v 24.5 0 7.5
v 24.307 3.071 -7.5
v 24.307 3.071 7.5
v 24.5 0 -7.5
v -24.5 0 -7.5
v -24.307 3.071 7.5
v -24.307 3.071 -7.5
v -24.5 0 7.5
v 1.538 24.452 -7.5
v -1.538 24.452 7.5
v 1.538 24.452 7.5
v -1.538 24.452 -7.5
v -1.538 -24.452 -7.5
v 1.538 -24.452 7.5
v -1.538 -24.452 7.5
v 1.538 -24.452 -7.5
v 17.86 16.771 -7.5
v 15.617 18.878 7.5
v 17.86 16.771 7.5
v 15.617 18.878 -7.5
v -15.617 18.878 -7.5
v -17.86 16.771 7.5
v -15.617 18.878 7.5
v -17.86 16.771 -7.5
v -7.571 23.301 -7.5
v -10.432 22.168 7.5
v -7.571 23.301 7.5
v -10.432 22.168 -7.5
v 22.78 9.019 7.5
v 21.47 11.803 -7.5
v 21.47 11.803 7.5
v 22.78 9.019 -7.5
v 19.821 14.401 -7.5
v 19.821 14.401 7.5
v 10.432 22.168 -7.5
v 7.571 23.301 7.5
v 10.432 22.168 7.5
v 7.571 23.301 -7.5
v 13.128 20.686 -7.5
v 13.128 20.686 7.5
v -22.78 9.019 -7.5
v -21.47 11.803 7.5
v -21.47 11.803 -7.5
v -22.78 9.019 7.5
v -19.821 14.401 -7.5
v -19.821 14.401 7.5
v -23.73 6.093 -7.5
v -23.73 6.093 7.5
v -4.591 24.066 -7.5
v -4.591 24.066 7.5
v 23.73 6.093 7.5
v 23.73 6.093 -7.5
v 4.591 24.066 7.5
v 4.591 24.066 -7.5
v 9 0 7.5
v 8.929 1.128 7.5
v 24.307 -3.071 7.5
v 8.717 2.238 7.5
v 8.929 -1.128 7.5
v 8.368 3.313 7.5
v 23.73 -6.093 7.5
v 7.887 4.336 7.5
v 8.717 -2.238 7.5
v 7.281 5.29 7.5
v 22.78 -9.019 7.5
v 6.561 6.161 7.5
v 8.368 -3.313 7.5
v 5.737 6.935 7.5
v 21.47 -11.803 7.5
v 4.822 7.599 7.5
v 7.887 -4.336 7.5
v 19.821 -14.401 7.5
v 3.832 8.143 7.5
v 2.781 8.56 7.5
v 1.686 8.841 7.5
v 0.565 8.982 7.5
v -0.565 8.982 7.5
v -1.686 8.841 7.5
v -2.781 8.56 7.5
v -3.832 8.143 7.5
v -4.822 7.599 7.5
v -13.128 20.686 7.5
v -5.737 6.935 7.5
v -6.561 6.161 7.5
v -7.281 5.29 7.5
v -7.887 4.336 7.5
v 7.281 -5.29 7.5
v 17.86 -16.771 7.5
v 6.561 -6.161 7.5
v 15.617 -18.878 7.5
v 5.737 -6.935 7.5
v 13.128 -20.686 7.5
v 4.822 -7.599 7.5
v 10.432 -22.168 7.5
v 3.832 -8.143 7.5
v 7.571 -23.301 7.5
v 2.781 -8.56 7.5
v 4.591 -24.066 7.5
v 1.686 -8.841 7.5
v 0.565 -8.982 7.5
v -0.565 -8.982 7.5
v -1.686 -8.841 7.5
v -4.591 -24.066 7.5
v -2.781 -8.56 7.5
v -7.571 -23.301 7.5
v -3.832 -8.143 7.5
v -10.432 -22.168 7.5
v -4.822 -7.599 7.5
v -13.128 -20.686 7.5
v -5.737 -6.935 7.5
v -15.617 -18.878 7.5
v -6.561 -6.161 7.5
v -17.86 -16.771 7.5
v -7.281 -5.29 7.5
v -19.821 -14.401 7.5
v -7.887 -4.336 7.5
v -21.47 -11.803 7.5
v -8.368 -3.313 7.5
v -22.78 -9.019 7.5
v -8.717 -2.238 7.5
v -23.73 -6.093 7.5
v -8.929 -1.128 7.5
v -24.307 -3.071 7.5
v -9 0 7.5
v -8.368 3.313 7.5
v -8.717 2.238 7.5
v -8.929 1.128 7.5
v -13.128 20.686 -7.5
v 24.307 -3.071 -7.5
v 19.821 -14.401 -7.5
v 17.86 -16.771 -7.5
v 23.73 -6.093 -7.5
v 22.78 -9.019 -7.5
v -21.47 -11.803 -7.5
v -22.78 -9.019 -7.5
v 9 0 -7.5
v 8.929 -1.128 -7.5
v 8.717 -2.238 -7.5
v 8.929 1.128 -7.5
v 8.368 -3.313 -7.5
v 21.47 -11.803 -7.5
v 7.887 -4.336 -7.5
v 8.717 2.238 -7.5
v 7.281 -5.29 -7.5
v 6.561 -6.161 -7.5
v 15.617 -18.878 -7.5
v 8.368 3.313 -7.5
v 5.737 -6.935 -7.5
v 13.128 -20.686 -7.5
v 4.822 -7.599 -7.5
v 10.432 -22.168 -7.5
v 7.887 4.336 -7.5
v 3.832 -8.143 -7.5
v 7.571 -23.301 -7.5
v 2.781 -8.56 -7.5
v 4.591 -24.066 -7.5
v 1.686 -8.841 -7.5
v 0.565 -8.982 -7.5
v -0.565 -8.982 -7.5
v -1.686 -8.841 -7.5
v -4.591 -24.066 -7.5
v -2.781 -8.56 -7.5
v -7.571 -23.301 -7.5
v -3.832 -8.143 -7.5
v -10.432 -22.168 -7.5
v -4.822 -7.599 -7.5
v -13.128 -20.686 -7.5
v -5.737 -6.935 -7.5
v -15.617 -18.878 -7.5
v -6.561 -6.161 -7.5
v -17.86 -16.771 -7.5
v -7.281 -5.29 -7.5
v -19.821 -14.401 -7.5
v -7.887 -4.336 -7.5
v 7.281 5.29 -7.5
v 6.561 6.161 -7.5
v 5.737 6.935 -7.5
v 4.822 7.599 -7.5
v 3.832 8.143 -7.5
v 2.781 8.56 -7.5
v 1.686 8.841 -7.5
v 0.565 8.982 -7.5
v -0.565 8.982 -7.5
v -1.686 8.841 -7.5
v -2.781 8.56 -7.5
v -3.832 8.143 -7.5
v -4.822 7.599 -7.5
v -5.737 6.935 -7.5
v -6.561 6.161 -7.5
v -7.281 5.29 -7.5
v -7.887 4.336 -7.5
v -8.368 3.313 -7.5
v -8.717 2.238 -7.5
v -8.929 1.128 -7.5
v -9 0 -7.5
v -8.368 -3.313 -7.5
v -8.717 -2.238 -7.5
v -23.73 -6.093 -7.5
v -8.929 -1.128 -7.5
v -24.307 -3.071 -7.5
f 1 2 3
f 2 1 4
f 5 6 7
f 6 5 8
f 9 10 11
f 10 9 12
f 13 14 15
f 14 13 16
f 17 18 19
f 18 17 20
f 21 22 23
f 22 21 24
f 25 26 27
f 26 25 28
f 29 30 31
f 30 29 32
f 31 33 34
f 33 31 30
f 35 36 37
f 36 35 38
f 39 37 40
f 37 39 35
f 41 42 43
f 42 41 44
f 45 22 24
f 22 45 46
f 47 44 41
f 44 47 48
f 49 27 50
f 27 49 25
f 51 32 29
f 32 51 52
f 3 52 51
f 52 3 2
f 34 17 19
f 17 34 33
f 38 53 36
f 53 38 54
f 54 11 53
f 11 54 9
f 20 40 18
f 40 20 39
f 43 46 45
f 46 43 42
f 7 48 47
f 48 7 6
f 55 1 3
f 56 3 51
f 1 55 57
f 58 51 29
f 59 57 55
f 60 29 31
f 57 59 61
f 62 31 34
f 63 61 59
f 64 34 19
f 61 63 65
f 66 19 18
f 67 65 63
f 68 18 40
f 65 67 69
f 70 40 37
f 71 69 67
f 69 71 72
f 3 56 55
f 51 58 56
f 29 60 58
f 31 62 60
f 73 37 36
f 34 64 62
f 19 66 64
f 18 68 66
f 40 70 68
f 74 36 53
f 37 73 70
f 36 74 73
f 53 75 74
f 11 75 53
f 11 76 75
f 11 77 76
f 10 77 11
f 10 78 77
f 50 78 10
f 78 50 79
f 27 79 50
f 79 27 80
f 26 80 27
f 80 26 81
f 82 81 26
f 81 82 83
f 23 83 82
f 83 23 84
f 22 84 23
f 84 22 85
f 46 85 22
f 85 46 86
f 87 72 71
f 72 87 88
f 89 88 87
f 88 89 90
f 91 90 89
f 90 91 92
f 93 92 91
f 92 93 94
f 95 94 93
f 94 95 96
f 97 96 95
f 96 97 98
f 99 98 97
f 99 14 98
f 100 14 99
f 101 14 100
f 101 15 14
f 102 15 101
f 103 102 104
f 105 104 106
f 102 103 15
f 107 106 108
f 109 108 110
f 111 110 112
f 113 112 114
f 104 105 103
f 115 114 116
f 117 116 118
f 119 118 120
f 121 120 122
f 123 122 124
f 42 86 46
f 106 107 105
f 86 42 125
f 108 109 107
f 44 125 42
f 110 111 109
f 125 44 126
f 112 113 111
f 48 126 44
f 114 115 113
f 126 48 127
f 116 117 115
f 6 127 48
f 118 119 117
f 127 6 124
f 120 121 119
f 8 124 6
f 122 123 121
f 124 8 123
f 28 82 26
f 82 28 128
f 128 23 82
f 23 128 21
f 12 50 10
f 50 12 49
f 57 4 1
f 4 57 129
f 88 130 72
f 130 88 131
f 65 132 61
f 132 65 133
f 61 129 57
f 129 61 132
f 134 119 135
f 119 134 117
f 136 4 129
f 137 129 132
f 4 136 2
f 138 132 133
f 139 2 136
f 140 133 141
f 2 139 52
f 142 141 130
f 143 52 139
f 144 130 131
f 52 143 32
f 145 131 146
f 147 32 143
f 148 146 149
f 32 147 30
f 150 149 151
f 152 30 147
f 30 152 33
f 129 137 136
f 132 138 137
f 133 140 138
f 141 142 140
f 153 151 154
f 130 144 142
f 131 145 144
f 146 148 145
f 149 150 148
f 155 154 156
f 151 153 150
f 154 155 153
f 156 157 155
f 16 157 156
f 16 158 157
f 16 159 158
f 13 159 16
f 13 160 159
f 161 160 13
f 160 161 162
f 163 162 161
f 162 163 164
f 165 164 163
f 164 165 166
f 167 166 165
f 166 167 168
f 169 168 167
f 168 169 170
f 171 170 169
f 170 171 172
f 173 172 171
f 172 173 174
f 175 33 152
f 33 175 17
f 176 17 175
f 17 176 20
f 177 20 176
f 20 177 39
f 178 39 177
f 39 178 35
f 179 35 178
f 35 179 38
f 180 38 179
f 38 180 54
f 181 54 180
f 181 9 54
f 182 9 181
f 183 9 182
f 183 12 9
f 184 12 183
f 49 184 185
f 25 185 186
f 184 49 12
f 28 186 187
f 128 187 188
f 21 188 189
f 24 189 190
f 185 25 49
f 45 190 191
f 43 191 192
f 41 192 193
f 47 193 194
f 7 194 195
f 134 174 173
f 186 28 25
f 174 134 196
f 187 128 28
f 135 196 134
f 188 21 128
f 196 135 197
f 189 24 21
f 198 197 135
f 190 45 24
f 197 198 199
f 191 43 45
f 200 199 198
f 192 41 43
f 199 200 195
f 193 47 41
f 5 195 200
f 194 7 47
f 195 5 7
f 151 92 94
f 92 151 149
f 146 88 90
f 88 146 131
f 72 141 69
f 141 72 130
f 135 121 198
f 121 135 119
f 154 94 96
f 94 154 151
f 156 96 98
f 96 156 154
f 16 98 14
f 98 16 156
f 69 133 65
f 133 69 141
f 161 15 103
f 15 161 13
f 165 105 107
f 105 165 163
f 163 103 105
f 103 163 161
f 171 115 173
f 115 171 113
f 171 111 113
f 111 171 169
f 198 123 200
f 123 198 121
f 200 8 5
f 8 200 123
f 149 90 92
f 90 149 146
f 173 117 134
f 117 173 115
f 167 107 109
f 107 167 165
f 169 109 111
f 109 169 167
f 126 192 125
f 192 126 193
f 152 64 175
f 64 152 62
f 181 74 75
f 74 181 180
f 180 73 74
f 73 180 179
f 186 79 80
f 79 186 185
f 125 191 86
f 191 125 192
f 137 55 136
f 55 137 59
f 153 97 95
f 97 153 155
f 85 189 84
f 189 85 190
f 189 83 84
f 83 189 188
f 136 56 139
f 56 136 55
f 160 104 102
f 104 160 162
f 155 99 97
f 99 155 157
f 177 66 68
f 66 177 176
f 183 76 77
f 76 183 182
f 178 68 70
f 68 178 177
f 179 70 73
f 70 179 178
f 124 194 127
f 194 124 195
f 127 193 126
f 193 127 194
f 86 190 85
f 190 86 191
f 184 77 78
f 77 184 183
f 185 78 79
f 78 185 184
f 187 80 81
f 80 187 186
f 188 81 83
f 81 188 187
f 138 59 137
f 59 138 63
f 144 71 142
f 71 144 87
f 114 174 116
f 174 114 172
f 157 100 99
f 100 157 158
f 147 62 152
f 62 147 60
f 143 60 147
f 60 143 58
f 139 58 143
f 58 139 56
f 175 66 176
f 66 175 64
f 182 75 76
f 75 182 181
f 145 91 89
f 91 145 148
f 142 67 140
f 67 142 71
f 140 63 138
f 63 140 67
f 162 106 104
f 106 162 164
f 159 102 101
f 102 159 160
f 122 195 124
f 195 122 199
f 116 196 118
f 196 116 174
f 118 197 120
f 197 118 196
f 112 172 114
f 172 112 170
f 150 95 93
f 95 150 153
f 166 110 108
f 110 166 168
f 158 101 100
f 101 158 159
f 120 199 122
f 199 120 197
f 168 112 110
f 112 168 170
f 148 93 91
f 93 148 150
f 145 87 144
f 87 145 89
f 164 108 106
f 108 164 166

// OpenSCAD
$fn = 50;


difference() {
	union() {
		translate(v = [0, 0, -7.5000000000]) {
			cylinder(h = 15, r = 24.5000000000);
		}
	}
	union() {
		translate(v = [0, 0, -100.0000000000]) {
			cylinder(h = 200, r = 9);
		}
	}
}
